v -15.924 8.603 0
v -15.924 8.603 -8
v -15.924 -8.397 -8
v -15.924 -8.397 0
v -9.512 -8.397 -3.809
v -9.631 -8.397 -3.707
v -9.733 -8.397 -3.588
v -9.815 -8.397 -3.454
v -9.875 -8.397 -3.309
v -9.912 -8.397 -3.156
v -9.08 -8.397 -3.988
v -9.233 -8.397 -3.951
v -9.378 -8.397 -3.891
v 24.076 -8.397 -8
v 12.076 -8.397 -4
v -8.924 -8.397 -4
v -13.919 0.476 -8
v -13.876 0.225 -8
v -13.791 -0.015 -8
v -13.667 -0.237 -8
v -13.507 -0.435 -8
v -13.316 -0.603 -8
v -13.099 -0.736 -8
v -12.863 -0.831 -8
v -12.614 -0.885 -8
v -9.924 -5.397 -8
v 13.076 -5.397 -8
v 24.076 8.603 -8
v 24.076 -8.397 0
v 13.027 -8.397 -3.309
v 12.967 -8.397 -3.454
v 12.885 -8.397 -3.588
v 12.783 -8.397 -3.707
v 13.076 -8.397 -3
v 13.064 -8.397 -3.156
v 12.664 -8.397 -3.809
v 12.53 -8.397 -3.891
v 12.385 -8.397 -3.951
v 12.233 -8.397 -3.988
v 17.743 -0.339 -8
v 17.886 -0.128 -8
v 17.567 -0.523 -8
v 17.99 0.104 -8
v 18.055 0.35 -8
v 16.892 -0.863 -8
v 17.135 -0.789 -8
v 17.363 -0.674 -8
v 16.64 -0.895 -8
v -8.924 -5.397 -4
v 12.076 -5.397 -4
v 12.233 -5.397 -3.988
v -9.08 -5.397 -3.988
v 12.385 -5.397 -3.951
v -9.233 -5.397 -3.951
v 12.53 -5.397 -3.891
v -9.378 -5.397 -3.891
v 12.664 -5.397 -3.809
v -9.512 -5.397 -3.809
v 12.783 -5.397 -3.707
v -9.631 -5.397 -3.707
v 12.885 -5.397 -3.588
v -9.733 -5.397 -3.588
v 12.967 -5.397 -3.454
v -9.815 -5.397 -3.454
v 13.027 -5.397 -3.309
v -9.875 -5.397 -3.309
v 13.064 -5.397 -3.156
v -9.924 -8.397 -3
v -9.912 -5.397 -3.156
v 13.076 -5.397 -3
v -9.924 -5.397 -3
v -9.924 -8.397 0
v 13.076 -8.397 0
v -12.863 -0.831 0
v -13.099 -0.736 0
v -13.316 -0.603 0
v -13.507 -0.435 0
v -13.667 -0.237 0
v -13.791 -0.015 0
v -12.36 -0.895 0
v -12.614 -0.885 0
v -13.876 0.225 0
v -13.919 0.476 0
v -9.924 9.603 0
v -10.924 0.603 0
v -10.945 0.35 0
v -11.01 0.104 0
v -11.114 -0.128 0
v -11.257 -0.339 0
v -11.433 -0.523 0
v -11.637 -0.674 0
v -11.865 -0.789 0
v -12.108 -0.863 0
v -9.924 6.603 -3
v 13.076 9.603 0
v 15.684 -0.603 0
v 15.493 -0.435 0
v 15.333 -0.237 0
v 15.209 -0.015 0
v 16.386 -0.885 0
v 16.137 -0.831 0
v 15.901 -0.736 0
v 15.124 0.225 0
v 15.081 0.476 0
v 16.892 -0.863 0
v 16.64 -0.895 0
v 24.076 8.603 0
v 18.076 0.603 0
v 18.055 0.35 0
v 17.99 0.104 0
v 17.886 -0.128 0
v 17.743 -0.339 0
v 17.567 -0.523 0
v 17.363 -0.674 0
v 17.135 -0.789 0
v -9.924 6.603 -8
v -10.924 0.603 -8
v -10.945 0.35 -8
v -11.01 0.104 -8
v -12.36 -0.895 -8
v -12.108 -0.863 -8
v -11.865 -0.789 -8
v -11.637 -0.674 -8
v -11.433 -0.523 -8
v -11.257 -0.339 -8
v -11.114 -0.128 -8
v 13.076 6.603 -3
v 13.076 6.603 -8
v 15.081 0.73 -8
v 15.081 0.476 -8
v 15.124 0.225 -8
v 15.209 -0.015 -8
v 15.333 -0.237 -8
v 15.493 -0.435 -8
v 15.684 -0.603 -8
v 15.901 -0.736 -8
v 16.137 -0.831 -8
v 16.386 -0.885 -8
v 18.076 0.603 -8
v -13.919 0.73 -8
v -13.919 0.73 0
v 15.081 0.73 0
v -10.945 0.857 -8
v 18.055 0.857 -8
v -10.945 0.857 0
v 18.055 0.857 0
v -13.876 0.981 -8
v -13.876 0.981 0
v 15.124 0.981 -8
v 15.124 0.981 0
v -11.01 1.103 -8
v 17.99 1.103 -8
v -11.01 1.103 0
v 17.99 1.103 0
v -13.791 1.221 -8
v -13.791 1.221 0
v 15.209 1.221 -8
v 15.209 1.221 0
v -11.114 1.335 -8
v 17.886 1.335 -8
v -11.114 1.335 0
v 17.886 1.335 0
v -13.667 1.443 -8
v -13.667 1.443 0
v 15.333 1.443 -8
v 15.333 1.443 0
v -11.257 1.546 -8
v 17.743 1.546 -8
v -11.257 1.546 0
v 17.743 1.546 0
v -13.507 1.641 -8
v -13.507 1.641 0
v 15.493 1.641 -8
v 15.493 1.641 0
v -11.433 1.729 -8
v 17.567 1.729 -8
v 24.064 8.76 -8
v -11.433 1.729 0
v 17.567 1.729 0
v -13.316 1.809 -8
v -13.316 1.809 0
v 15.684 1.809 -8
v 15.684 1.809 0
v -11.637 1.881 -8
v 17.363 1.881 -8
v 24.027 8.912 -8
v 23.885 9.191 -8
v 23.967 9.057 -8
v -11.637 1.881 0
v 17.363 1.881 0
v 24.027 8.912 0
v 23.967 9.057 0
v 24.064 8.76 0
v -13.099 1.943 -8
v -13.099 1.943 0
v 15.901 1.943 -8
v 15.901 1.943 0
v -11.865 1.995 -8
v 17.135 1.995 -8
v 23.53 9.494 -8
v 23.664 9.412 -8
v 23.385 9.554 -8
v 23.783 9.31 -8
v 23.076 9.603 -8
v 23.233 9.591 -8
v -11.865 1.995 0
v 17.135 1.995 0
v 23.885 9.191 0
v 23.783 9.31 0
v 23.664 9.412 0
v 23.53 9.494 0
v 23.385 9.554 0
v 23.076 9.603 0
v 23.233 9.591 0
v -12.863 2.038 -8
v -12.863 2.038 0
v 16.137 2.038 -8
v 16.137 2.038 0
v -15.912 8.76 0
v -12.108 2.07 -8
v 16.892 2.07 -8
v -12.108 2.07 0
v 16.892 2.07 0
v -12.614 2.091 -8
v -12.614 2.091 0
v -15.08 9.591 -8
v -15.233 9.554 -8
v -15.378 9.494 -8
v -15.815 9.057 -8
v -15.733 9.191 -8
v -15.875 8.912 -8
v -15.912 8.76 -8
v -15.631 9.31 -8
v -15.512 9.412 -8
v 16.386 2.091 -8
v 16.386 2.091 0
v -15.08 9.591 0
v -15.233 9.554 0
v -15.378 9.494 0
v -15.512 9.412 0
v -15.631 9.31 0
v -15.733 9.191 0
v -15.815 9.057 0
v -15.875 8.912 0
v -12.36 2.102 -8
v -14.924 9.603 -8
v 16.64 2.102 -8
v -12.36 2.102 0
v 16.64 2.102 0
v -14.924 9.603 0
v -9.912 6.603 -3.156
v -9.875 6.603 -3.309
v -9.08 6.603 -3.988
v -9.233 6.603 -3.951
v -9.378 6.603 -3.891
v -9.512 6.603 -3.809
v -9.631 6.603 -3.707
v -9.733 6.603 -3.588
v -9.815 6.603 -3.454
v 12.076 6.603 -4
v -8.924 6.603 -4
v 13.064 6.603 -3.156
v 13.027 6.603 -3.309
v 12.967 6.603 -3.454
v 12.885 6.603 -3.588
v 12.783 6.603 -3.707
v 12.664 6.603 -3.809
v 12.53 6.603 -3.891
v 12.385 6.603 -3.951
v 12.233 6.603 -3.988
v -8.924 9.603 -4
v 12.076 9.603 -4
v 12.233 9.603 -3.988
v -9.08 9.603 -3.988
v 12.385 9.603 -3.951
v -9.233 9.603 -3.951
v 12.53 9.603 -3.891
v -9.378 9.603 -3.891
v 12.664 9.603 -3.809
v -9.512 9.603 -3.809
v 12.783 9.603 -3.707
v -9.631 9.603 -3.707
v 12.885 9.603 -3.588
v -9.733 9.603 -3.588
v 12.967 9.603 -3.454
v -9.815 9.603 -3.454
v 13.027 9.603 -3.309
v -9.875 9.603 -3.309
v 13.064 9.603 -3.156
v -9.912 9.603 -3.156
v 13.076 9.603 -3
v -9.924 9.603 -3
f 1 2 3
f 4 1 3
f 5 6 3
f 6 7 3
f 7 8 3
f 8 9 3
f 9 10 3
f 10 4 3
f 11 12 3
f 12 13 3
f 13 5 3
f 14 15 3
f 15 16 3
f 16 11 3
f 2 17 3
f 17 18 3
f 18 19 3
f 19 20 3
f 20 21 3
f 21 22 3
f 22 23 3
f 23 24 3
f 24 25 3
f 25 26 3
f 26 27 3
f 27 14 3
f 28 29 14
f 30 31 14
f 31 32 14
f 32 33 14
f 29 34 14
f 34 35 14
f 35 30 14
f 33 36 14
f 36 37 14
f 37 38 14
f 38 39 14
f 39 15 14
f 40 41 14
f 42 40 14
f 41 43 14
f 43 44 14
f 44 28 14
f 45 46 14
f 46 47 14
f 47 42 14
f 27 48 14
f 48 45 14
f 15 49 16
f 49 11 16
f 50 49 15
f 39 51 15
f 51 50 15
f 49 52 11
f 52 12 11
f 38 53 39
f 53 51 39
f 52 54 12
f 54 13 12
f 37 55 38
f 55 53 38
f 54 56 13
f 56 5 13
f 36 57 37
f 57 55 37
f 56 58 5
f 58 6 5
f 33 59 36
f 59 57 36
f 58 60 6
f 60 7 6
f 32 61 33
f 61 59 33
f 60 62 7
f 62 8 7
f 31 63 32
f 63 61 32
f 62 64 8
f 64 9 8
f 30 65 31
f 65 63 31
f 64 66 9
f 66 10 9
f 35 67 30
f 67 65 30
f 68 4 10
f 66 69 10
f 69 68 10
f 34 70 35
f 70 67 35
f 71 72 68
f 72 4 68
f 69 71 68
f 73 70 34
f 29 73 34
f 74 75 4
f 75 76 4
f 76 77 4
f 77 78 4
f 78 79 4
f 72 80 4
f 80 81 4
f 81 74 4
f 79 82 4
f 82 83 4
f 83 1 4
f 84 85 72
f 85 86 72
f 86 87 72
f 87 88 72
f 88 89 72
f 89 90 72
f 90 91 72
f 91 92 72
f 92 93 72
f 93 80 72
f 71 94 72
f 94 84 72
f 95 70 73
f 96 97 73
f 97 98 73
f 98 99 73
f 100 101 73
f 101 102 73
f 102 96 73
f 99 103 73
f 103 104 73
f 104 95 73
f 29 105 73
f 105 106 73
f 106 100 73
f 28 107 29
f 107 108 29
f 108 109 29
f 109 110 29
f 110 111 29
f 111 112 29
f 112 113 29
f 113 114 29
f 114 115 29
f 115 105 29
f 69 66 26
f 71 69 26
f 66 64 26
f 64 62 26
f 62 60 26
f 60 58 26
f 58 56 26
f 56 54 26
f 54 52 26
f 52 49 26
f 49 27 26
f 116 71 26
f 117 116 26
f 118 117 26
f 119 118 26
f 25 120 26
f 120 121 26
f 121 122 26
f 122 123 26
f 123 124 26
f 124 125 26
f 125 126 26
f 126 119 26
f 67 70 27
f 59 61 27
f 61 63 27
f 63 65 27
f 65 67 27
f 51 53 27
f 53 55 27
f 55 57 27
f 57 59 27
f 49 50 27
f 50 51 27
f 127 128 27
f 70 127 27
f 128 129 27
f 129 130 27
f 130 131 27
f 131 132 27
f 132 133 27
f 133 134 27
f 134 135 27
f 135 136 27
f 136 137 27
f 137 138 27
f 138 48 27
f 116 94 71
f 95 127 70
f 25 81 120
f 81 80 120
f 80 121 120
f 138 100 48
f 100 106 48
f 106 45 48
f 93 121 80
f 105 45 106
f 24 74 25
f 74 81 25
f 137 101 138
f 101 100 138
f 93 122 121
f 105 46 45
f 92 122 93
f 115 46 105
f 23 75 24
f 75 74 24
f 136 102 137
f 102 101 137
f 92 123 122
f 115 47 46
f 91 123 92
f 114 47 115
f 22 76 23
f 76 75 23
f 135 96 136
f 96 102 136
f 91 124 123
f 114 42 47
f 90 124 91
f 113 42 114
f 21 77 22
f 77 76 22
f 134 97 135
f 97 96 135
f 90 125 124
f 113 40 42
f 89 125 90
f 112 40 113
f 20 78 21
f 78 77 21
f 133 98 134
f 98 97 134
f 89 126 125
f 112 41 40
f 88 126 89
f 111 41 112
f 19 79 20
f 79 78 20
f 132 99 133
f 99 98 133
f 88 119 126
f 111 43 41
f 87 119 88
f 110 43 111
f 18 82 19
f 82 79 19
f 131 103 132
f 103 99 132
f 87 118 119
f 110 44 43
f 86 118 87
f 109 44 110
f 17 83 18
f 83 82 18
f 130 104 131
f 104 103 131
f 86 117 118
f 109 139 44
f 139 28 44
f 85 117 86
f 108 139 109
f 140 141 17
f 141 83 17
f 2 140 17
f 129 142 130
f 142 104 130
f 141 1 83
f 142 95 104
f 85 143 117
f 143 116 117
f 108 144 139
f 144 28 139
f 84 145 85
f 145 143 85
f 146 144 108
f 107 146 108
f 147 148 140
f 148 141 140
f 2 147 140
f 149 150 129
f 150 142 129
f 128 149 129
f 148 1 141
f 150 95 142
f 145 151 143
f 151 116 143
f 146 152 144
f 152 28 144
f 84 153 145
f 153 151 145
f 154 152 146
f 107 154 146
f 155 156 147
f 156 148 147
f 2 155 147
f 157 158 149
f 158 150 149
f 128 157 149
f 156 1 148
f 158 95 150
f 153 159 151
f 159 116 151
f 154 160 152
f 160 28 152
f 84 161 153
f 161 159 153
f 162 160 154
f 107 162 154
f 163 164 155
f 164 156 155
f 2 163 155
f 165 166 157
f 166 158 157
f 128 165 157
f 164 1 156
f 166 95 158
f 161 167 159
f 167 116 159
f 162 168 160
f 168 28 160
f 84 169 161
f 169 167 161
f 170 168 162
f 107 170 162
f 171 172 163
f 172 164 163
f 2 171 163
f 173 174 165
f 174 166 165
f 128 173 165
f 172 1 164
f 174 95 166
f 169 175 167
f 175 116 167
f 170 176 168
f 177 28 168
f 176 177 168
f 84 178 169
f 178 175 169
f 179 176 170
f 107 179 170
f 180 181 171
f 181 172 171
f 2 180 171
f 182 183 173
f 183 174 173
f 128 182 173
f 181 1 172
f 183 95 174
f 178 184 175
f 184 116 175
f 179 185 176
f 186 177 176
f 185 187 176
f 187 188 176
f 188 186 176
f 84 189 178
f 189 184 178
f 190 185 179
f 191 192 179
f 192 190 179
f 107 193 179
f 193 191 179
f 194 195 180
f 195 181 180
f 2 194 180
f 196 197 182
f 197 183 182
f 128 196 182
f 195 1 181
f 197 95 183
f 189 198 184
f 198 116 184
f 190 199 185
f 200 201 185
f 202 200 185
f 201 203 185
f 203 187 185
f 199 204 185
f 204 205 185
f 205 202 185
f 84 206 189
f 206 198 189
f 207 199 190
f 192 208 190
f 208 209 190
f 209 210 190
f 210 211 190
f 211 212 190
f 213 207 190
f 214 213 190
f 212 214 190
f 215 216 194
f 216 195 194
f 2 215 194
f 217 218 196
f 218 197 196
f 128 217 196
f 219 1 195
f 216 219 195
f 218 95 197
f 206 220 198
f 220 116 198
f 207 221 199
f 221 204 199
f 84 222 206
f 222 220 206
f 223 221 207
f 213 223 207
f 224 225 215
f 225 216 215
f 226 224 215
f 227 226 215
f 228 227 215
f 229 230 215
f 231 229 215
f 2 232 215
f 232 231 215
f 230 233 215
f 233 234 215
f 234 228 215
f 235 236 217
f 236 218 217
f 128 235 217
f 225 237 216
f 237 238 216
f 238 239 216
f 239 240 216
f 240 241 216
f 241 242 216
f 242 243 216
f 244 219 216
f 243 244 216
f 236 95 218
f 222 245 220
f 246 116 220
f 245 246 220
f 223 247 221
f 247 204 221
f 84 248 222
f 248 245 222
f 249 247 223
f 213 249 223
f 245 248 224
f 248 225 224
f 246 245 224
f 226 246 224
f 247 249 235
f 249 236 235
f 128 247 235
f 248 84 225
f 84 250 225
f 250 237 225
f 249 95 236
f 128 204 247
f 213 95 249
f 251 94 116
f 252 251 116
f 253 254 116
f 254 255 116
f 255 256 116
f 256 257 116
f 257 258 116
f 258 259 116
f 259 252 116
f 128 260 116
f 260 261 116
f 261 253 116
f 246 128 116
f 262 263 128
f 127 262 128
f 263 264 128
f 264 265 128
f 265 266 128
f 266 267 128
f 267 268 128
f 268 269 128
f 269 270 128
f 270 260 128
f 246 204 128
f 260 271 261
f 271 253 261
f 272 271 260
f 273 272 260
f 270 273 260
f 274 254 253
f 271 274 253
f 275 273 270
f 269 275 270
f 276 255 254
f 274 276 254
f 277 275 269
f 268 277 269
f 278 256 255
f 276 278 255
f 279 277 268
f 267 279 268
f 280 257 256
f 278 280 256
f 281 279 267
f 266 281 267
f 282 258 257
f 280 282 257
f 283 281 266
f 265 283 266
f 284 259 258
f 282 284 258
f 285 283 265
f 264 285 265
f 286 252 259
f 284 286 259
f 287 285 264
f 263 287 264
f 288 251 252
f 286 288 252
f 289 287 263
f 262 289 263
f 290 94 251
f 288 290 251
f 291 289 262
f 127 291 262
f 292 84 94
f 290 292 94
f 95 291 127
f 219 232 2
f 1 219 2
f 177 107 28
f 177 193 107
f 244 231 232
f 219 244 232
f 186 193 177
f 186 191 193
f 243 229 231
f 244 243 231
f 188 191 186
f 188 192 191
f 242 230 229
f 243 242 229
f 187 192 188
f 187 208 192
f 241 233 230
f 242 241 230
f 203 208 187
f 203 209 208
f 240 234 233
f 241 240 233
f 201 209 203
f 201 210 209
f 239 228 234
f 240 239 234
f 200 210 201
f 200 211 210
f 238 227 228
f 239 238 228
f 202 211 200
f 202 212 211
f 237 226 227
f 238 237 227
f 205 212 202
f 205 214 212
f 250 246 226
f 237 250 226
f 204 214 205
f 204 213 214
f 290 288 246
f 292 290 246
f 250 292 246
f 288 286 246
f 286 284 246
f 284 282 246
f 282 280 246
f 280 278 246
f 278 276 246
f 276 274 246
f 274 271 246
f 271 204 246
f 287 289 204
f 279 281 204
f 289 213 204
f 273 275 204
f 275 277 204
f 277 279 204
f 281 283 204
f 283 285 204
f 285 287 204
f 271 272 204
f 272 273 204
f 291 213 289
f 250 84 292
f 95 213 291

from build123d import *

# Parameters (mm, degrees)
BOSS_EXTRUDE1_DEPTH = 8
SKETCH2_W           = 23
SKETCH2_H           = 3
CUT_EXTRUDE1_DEPTH  = 4
FILLET1_R           = 1
FILLET2_R           = 1


with BuildPart() as part:
    # Sketch1 → Boss-Extrude1 (new body)
    with BuildSketch(Plane.XY):
        with BuildLine():
            ThreePointArc((15.076086957, 0.60326087), (16.576086957, 2.10326087), (18.076086957, 0.60326087))
            Line((18.076086957, 0.60326087), (24.076086957, 0.60326087))
            Line((24.076086957, 0.60326087), (24.076086957, 6.60326087))
            Line((24.076086957, 6.60326087), (24.076086957, 9.60326087))
            Line((24.076086957, 9.60326087), (13.076086957, 9.60326087))
            Line((13.076086957, 9.60326087), (-9.923913043, 9.60326087))
            Line((-9.923913043, 9.60326087), (-15.923913043, 9.60326087))
            Line((-15.923913043, 9.60326087), (-15.923913043, 6.60326087))
            Line((-15.923913043, 6.60326087), (-15.923913043, 0.60326087))
            Line((-15.923913043, 0.60326087), (-13.923913043, 0.60326087))
            ThreePointArc((-13.923913043, 0.60326087), (-12.423913043, 2.10326087), (-10.923913043, 0.60326087))
            Line((-10.923913043, 0.60326087), (-9.923913043, 0.60326087))
            Line((-9.923913043, 0.60326087), (-9.923913043, 6.60326087))
            Line((-9.923913043, 6.60326087), (13.076086957, 6.60326087))
            Line((13.076086957, 6.60326087), (13.076086957, 0.60326087))
            Line((13.076086957, 0.60326087), (15.076086957, 0.60326087))
        make_face()
        with BuildLine():
            Line((24.076086957, 0.60326087), (18.076086957, 0.60326087))
            ThreePointArc((18.076086957, 0.60326087), (16.576086957, -0.89673913), (15.076086957, 0.60326087))
            Line((15.076086957, 0.60326087), (13.076086957, 0.60326087))
            Line((13.076086957, 0.60326087), (13.076086957, -5.39673913))
            Line((13.076086957, -5.39673913), (-9.923913043, -5.39673913))
            Line((-9.923913043, -5.39673913), (-9.923913043, 0.60326087))
            Line((-9.923913043, 0.60326087), (-10.923913043, 0.60326087))
            ThreePointArc((-10.923913043, 0.60326087), (-12.423913043, -0.89673913), (-13.923913043, 0.60326087))
            Line((-13.923913043, 0.60326087), (-15.923913043, 0.60326087))
            Line((-15.923913043, 0.60326087), (-15.923913043, -5.39673913))
            Line((-15.923913043, -5.39673913), (-15.923913043, -8.39673913))
            Line((-15.923913043, -8.39673913), (-9.923913043, -8.39673913))
            Line((-9.923913043, -8.39673913), (13.076086957, -8.39673913))
            Line((13.076086957, -8.39673913), (24.076086957, -8.39673913))
            Line((24.076086957, -8.39673913), (24.076086957, -5.39673913))
            Line((24.076086957, -5.39673913), (24.076086957, 0.60326087))
        make_face()
    extrude(amount=-BOSS_EXTRUDE1_DEPTH)

    # Sketch2 → Cut-Extrude1 (cut)
    with BuildSketch(Plane.XY):
        with Locations((1.576086957, 8.10326087)):
            Rectangle(SKETCH2_W, SKETCH2_H)
        with Locations((1.576086957, -6.89673913)):
            Rectangle(SKETCH2_W, SKETCH2_H)
    extrude(amount=-CUT_EXTRUDE1_DEPTH, mode=Mode.SUBTRACT)

    # Fillet1
    fillet1_edges = [part.edges().sort_by_distance(p)[0] for p in [
        (-9.923913043, 8.10326087, -4),
        (13.076086957, 8.10326087, -4),
        (-9.923913043, -6.89673913, -4),
        (13.076086957, -6.89673913, -4),
    ]]
    fillet(fillet1_edges, radius=FILLET1_R)

    # Fillet2
    fillet2_edges = [part.edges().sort_by_distance(p)[0] for p in [
        (-15.923913043, 9.60326087, -4),
        (24.076086957, 9.60326087, -4),
    ]]
    fillet(fillet2_edges, radius=FILLET2_R)


solid = part.part
